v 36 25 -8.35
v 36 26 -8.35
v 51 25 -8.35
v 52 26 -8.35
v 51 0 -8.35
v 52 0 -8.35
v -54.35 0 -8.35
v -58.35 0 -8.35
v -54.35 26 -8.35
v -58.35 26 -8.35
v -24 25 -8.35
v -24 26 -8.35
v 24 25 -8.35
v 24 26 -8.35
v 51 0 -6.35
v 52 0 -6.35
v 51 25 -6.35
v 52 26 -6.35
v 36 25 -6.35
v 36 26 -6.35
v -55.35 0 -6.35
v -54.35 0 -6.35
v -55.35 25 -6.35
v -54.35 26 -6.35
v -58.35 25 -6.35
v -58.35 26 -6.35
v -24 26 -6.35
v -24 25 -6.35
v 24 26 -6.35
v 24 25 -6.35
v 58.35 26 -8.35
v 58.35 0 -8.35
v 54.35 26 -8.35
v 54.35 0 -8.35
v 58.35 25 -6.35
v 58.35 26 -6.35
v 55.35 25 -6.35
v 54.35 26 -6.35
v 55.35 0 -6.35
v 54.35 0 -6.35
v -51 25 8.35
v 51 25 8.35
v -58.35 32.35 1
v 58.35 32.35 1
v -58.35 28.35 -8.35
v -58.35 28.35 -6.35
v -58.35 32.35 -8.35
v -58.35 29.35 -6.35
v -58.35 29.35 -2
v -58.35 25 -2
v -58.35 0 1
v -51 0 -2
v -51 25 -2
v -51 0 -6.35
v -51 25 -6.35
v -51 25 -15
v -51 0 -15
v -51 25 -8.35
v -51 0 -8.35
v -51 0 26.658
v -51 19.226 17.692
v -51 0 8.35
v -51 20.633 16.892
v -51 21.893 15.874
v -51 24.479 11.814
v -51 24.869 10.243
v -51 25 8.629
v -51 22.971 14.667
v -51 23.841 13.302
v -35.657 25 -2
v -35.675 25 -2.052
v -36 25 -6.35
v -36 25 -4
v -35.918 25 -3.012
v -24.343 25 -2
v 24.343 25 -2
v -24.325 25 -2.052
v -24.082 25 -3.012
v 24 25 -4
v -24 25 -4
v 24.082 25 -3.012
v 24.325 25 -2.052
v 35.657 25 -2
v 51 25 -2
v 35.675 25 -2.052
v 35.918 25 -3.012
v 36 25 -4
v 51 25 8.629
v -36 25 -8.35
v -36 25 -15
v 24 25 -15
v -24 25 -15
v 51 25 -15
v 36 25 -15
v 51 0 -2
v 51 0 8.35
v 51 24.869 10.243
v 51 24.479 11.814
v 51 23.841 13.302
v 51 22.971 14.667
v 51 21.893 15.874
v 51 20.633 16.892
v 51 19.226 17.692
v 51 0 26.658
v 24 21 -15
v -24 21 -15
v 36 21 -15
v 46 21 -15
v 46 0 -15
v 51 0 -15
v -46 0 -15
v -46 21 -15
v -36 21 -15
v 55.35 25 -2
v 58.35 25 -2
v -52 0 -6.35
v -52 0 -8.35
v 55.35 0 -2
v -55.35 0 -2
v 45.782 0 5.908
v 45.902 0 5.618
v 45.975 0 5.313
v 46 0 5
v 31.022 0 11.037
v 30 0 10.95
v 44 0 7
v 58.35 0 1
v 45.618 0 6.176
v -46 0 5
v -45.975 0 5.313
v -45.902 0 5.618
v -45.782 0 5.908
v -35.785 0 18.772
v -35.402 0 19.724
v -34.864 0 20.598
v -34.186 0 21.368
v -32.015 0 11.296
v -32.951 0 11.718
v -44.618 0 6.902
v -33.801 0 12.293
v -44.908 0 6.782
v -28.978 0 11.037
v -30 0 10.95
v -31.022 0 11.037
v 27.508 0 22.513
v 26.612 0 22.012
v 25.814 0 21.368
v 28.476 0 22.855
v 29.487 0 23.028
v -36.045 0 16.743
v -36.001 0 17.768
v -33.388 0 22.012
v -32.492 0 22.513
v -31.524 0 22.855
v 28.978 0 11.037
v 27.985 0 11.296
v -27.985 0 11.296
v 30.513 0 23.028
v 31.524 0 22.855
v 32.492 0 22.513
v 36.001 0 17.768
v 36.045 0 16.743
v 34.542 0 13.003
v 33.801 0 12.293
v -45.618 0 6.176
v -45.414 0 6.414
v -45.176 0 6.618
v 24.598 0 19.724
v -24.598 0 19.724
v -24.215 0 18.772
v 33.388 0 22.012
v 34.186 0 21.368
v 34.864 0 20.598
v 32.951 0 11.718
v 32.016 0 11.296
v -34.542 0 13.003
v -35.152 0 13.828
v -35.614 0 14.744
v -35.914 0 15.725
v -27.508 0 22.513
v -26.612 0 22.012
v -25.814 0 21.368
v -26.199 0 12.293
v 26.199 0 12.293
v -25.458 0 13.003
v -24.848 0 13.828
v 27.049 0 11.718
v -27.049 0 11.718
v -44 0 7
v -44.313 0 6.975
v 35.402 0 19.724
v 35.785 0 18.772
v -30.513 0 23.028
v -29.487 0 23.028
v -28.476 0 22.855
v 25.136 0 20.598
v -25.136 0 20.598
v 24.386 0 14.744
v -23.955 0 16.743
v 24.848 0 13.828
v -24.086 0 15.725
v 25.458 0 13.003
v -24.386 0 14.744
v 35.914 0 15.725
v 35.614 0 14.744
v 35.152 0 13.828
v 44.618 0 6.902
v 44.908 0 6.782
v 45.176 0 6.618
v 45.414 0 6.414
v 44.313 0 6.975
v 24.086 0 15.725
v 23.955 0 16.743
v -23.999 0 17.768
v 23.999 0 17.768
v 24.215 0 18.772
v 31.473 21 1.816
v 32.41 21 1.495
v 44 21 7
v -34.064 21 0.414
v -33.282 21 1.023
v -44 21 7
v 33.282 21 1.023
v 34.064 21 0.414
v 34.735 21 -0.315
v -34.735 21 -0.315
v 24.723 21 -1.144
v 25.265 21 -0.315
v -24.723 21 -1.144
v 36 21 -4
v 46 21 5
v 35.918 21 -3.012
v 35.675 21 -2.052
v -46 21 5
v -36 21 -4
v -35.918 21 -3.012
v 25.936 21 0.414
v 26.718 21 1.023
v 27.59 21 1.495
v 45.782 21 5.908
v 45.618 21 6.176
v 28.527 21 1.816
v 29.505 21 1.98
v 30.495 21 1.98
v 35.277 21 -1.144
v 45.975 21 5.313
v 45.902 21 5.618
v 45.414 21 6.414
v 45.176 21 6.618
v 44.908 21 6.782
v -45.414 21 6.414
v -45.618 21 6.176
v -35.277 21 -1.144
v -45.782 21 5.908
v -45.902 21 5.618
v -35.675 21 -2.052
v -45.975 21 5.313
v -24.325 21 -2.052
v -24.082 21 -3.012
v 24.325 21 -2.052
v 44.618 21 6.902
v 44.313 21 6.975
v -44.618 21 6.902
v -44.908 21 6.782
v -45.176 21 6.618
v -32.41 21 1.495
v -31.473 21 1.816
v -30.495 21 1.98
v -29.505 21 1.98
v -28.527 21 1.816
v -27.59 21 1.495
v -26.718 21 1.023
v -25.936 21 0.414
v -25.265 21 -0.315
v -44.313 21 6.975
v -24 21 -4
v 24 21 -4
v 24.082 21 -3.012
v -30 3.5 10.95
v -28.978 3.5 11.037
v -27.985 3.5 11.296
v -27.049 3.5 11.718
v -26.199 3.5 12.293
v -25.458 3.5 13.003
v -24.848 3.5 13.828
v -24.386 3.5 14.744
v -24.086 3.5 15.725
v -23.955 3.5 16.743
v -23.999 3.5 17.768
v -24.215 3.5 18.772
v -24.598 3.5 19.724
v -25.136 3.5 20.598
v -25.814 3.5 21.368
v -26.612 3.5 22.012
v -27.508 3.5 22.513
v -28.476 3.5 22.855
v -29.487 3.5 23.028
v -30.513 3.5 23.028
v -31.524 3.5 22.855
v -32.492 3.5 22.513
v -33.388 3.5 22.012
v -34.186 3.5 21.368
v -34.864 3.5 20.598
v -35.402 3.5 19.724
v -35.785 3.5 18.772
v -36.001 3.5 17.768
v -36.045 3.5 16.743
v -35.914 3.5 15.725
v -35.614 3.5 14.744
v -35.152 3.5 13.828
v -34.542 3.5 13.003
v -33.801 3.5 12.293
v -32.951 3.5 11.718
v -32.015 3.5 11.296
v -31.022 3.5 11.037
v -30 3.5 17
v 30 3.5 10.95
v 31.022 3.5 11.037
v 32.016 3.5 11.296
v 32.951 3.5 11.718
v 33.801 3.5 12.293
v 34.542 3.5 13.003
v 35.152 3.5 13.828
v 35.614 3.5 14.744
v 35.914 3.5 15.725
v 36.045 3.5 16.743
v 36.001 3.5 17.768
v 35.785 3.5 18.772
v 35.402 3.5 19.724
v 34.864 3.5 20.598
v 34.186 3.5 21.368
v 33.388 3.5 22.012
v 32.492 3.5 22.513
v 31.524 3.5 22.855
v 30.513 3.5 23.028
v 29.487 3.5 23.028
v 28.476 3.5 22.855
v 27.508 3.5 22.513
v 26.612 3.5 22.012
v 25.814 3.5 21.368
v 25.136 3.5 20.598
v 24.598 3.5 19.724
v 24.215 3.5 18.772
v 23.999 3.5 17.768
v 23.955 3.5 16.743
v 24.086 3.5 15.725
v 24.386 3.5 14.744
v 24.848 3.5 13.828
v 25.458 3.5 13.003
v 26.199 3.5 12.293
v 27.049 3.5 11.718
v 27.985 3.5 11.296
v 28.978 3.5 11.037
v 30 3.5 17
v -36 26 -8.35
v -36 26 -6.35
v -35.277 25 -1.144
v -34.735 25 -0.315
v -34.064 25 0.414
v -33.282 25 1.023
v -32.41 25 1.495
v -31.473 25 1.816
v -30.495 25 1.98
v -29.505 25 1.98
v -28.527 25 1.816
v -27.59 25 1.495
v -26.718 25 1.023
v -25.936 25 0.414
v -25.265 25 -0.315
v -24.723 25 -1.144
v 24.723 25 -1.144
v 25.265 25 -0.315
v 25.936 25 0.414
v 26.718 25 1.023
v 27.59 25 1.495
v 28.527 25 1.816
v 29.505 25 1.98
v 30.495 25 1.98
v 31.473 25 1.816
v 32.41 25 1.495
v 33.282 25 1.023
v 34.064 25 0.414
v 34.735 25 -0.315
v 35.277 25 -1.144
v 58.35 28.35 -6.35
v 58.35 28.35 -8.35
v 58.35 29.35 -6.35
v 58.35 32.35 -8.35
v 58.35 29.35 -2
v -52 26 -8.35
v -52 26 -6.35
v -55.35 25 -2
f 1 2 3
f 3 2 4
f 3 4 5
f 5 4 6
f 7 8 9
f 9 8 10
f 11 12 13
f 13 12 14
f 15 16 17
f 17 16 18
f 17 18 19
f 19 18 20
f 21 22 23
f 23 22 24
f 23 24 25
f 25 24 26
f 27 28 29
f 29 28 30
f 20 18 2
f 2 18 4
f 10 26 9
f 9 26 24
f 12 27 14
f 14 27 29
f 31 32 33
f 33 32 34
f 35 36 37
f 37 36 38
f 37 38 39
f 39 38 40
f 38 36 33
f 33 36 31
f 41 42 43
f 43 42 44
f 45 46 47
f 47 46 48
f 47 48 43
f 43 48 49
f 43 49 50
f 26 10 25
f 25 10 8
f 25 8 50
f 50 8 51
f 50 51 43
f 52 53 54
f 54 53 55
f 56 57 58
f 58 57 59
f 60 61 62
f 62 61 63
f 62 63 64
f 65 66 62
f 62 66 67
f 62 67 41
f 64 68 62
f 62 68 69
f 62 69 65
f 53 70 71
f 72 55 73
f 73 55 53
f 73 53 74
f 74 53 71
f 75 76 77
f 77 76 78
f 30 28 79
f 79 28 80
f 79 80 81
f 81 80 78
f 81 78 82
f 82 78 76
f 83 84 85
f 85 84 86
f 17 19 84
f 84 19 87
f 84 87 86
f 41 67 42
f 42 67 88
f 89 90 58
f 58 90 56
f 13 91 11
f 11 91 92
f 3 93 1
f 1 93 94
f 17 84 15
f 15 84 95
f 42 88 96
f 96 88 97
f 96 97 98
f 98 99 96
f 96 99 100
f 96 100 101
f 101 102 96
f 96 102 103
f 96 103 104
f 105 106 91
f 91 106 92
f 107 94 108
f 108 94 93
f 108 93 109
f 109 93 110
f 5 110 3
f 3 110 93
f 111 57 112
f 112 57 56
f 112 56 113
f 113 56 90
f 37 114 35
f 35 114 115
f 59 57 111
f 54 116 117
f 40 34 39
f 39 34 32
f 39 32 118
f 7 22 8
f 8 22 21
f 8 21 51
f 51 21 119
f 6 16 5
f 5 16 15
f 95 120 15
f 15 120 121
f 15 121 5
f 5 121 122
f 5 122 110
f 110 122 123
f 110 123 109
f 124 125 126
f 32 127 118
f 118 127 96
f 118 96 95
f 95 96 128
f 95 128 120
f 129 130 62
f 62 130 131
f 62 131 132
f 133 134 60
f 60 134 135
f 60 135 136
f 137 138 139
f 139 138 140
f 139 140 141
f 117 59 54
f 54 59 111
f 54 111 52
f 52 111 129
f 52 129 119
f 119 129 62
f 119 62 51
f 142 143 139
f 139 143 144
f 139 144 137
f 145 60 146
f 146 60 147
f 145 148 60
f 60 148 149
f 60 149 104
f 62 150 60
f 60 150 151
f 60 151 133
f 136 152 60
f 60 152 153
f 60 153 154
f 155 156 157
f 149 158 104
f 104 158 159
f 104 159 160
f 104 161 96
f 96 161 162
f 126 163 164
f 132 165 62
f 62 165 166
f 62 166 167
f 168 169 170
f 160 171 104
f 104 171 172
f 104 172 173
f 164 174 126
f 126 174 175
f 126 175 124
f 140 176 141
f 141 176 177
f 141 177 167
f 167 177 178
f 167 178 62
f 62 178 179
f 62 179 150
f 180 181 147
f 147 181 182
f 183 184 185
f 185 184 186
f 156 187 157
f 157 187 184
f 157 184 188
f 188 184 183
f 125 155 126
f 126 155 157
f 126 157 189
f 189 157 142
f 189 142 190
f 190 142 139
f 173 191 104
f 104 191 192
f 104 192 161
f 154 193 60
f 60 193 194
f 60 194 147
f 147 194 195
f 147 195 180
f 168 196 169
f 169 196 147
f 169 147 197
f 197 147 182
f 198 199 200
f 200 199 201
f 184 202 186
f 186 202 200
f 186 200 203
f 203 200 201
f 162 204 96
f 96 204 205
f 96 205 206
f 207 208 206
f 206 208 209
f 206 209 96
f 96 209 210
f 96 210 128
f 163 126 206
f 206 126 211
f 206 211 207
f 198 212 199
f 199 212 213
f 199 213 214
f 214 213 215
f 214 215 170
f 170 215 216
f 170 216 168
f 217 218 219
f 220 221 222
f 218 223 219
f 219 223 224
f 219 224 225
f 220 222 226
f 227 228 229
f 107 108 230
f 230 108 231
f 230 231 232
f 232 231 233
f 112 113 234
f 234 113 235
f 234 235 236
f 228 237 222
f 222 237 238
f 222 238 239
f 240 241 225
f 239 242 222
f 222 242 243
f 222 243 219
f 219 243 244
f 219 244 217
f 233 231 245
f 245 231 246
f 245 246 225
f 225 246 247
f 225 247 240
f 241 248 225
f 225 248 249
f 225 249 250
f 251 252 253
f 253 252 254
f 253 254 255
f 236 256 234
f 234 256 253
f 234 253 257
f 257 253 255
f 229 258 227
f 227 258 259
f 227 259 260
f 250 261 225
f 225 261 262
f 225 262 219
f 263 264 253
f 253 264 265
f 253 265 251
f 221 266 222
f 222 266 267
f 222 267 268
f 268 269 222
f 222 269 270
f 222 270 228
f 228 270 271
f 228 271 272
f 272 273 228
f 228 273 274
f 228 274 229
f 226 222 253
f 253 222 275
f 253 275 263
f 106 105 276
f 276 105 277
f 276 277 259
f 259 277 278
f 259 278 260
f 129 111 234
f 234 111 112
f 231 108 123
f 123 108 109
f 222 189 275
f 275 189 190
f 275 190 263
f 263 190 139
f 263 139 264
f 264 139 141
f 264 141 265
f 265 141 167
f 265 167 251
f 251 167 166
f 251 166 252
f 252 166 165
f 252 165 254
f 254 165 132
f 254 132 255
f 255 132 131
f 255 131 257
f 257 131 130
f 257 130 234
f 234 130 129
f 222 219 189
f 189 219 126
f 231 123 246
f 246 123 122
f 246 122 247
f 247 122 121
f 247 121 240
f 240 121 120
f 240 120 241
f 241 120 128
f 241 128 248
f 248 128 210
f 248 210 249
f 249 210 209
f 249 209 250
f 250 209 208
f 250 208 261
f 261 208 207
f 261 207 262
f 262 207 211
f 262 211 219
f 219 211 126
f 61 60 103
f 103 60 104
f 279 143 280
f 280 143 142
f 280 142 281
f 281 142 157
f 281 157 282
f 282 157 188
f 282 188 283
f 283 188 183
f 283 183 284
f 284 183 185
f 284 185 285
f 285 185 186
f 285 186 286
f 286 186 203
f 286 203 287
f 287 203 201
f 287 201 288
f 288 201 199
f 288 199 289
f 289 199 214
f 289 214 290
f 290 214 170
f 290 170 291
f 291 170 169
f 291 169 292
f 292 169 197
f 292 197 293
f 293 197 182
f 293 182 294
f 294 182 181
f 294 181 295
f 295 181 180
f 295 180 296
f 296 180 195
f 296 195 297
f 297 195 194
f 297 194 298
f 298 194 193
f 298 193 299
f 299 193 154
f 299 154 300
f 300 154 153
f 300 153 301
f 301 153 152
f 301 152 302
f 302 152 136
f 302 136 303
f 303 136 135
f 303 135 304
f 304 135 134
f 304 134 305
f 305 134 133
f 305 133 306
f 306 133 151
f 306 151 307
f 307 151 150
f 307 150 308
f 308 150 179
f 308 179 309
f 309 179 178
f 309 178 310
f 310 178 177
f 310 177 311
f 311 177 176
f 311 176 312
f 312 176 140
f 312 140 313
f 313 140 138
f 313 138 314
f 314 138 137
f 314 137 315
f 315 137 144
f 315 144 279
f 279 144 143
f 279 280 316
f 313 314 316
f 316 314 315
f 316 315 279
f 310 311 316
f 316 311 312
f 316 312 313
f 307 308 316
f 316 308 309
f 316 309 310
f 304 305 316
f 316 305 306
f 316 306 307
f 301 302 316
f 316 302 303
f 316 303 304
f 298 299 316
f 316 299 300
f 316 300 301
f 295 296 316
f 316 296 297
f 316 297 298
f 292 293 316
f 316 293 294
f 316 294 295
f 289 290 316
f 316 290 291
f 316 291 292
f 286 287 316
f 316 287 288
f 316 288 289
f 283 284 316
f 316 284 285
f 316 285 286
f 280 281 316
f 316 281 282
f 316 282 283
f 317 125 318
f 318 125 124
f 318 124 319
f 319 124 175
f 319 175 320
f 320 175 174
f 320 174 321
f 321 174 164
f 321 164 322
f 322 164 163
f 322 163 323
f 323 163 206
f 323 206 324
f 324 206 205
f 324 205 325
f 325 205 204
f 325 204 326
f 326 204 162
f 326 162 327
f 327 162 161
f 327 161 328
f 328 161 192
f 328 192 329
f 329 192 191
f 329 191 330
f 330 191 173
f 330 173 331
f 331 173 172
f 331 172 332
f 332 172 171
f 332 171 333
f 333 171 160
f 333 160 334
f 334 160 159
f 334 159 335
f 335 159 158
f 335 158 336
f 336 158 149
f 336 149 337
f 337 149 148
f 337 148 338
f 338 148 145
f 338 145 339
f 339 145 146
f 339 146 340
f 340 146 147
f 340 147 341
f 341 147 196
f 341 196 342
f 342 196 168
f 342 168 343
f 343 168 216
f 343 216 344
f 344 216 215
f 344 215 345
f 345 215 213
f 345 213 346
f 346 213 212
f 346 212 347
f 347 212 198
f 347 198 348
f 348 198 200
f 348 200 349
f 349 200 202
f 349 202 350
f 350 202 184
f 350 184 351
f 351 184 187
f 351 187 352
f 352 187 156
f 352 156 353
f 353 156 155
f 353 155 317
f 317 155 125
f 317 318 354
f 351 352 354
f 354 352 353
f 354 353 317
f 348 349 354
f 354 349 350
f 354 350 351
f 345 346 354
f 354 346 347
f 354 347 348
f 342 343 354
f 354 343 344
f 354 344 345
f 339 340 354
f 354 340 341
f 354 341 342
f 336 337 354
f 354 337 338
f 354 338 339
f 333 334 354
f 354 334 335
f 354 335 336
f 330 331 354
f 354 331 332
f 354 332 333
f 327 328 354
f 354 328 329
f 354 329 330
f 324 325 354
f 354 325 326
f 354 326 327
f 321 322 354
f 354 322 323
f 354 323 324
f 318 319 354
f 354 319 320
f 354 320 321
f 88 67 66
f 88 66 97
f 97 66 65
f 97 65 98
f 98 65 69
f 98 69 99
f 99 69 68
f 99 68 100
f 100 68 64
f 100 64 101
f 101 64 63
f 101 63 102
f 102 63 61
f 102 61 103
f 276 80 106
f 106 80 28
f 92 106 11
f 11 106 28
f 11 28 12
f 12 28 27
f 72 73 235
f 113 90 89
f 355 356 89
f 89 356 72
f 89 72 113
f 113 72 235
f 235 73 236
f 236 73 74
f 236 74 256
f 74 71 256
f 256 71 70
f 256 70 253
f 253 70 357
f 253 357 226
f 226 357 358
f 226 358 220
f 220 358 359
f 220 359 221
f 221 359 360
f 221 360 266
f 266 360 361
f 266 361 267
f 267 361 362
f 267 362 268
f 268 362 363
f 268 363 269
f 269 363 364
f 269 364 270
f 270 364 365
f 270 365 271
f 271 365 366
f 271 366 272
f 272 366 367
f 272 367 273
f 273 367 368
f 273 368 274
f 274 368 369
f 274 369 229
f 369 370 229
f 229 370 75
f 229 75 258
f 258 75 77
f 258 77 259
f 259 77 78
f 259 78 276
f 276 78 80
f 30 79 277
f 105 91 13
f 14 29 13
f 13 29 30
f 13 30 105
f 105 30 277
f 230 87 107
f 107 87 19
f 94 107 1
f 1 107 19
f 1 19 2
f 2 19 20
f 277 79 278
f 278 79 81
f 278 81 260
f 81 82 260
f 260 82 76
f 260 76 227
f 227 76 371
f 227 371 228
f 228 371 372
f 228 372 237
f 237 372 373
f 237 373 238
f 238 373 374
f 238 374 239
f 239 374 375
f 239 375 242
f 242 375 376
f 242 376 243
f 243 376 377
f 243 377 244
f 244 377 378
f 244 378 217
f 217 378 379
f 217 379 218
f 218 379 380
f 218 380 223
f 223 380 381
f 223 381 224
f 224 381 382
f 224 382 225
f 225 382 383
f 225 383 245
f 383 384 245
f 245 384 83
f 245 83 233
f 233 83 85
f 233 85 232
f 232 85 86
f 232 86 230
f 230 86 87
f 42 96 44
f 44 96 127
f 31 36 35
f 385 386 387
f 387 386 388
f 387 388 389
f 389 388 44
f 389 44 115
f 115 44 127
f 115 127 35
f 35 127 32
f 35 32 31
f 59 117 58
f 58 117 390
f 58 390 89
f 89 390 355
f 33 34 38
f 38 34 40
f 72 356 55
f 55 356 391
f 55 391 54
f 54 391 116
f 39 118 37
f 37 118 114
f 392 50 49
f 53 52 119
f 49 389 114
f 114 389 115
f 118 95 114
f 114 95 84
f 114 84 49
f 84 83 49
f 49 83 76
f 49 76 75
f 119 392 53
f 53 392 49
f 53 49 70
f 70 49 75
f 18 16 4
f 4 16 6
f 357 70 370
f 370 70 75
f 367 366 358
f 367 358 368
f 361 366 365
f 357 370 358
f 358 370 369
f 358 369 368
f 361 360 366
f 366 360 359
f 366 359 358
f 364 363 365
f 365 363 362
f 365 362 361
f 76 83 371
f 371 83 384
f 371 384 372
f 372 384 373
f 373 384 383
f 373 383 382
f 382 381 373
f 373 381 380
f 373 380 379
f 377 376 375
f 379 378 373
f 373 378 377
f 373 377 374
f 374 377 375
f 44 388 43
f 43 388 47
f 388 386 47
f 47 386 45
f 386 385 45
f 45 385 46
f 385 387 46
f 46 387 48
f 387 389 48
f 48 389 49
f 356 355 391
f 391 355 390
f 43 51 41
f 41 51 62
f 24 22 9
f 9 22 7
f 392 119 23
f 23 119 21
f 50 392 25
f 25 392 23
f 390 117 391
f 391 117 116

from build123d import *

# Parameters (mm, degrees)
SKETCH1_W           = 102
SKETCH1_H           = 30
BOSS_EXTRUDE1_DEPTH = 25
CUT_EXTRUDE1_DEPTH  = 21
BOSS_EXTRUDE2_DEPTH = 102
SKETCH4_R           = 6.05
CUT_EXTRUDE2_DEPTH  = 3.5
FILLET1_R           = 10
CUT_EXTRUDE3_DEPTH  = 23.5
SKETCH6_W           = 1
SKETCH6_H           = 2
BOSS_EXTRUDE3_DEPTH = 25
SKETCH7_W           = 2
SKETCH7_H           = 1
BOSS_EXTRUDE4_DEPTH = 116.7
CUT_EXTRUDE4_DEPTH  = 7.35
SKETCH9_W           = 2.35
SKETCH9_H           = 1
SKETCH9_W_2         = 12
CUT_EXTRUDE5_DEPTH  = 3


with BuildPart() as part:
    # Sketch1 → Boss-Extrude1 (new body)
    with BuildSketch(Plane(origin=(0, 0, 0), x_dir=(1, 0, 0), z_dir=(0, 1, 0))):
        Rectangle(SKETCH1_W, SKETCH1_H)
    extrude(amount=BOSS_EXTRUDE1_DEPTH)

    # Sketch2 → Cut-Extrude1 (cut)
    with BuildSketch(Plane.XZ):
        with BuildLine():
            Line((-46, -37), (46, -37))
            Line((46, -37), (46, 5))
            ThreePointArc((46, 5), (45.414213562, 6.414213562), (44, 7))
            Line((44, 7), (-44, 7))
            ThreePointArc((-44, 7), (-45.414213562, 6.414213562), (-46, 5))
            Line((-46, 5), (-46, -37))
        make_face()
    extrude(amount=-CUT_EXTRUDE1_DEPTH, mode=Mode.SUBTRACT)

    # Sketch3 → Boss-Extrude2 (add)
    with BuildSketch(Plane(origin=(51, 0, 0), x_dir=(0, 0, -1), z_dir=(1, 0, 0))):
        Polygon((-15, 25), (-26.657691454, 0), (-15, 0), align=None)
    extrude(amount=-BOSS_EXTRUDE2_DEPTH)

    # Sketch4 → Cut-Extrude2 (cut)
    with BuildSketch(Plane.XZ):
        with Locations(Location((-30, 17, 0), (0, 0, 270))):
            Circle(SKETCH4_R)
        with Locations(Location((30, 17, 0), (0, 0, 270))):
            Circle(SKETCH4_R)
    extrude(amount=-CUT_EXTRUDE2_DEPTH, mode=Mode.SUBTRACT)

    # Fillet1
    fillet1_edges = [part.edges().sort_by_distance(p)[0] for p in [
        (0, 25, 15),
    ]]
    fillet(fillet1_edges, radius=FILLET1_R)

    # Sketch5 → Cut-Extrude3 (cut)
    with BuildSketch(Plane(origin=(0, 25, 0), x_dir=(1, 0, 0), z_dir=(0, 1, 0))):
        with BuildLine():
            Line((-24, 26), (-24, 4))
            ThreePointArc((-24, 4), (-30, -2), (-36, 4))
            Line((-36, 4), (-36, 26))
            ThreePointArc((-36, 26), (-30, 32), (-24, 26))
        make_face()
        with BuildLine():
            Line((24, 4), (24, 26))
            ThreePointArc((24, 26), (30, 32), (36, 26))
            Line((36, 26), (36, 4))
            ThreePointArc((36, 4), (30, -2), (24, 4))
        make_face()
    extrude(amount=-CUT_EXTRUDE3_DEPTH, mode=Mode.SUBTRACT)

    # Sketch6 → Boss-Extrude3 (add)
    with BuildSketch(Plane.XZ):
        Polygon((51, -2), (55.35, -2), (55.35, -6.35), (54.35, -6.35), (54.35, -8.35), (58.35, -8.35), (58.35, 1), (51, 8.35), align=None)
        with Locations((51.5, -7.35)):
            Rectangle(SKETCH6_W, SKETCH6_H)
    boss_extrude3 = extrude(amount=-BOSS_EXTRUDE3_DEPTH)

    # Sketch7 → Boss-Extrude4 (add)
    with BuildSketch(Plane(origin=(58.35, 0, 0), x_dir=(0, 0, -1), z_dir=(1, 0, 0))):
        Polygon((2, 25), (2, 29.35), (6.35, 29.35), (6.35, 28.35), (8.35, 28.35), (8.35, 32.35), (-1, 32.35), (-8.35, 25), align=None)
        with Locations((7.35, 25.5)):
            Rectangle(SKETCH7_W, SKETCH7_H)
    extrude(amount=-BOSS_EXTRUDE4_DEPTH)

    # Sketch8 → Cut-Extrude4 (cut)
    with BuildSketch(Plane.XZ.offset(-25)):
        Polygon((58.35, 8.35), (51, 8.35), (58.35, 1), align=None)
    cut_extrude4 = extrude(amount=-CUT_EXTRUDE4_DEPTH, mode=Mode.SUBTRACT)

    # Mirror1: Boss-Extrude3, Cut-Extrude4 across plane
    add(boss_extrude3.mirror(Plane(origin=(0, 0, 0), x_dir=(0, 0, 1), z_dir=(1, 0, 0))))
    add(cut_extrude4.mirror(Plane(origin=(0, 0, 0), x_dir=(0, 0, 1), z_dir=(1, 0, 0))), mode=Mode.SUBTRACT)

    # Sketch9 → Cut-Extrude5 (cut)
    with BuildSketch(Plane(origin=(0, 0, -8.35), x_dir=(-1, 0, 0), z_dir=(0, 0, -1))):
        with Locations((-53.175, 25.5)):
            Rectangle(SKETCH9_W, SKETCH9_H)
        with Locations((-30, 25.5)):
            Rectangle(SKETCH9_W_2, SKETCH9_H)
        with Locations((53.175, 25.5)):
            Rectangle(SKETCH9_W, SKETCH9_H)
        with Locations((30, 25.5)):
            Rectangle(SKETCH9_W_2, SKETCH9_H)
    extrude(amount=-CUT_EXTRUDE5_DEPTH, mode=Mode.SUBTRACT)


solid = part.part
